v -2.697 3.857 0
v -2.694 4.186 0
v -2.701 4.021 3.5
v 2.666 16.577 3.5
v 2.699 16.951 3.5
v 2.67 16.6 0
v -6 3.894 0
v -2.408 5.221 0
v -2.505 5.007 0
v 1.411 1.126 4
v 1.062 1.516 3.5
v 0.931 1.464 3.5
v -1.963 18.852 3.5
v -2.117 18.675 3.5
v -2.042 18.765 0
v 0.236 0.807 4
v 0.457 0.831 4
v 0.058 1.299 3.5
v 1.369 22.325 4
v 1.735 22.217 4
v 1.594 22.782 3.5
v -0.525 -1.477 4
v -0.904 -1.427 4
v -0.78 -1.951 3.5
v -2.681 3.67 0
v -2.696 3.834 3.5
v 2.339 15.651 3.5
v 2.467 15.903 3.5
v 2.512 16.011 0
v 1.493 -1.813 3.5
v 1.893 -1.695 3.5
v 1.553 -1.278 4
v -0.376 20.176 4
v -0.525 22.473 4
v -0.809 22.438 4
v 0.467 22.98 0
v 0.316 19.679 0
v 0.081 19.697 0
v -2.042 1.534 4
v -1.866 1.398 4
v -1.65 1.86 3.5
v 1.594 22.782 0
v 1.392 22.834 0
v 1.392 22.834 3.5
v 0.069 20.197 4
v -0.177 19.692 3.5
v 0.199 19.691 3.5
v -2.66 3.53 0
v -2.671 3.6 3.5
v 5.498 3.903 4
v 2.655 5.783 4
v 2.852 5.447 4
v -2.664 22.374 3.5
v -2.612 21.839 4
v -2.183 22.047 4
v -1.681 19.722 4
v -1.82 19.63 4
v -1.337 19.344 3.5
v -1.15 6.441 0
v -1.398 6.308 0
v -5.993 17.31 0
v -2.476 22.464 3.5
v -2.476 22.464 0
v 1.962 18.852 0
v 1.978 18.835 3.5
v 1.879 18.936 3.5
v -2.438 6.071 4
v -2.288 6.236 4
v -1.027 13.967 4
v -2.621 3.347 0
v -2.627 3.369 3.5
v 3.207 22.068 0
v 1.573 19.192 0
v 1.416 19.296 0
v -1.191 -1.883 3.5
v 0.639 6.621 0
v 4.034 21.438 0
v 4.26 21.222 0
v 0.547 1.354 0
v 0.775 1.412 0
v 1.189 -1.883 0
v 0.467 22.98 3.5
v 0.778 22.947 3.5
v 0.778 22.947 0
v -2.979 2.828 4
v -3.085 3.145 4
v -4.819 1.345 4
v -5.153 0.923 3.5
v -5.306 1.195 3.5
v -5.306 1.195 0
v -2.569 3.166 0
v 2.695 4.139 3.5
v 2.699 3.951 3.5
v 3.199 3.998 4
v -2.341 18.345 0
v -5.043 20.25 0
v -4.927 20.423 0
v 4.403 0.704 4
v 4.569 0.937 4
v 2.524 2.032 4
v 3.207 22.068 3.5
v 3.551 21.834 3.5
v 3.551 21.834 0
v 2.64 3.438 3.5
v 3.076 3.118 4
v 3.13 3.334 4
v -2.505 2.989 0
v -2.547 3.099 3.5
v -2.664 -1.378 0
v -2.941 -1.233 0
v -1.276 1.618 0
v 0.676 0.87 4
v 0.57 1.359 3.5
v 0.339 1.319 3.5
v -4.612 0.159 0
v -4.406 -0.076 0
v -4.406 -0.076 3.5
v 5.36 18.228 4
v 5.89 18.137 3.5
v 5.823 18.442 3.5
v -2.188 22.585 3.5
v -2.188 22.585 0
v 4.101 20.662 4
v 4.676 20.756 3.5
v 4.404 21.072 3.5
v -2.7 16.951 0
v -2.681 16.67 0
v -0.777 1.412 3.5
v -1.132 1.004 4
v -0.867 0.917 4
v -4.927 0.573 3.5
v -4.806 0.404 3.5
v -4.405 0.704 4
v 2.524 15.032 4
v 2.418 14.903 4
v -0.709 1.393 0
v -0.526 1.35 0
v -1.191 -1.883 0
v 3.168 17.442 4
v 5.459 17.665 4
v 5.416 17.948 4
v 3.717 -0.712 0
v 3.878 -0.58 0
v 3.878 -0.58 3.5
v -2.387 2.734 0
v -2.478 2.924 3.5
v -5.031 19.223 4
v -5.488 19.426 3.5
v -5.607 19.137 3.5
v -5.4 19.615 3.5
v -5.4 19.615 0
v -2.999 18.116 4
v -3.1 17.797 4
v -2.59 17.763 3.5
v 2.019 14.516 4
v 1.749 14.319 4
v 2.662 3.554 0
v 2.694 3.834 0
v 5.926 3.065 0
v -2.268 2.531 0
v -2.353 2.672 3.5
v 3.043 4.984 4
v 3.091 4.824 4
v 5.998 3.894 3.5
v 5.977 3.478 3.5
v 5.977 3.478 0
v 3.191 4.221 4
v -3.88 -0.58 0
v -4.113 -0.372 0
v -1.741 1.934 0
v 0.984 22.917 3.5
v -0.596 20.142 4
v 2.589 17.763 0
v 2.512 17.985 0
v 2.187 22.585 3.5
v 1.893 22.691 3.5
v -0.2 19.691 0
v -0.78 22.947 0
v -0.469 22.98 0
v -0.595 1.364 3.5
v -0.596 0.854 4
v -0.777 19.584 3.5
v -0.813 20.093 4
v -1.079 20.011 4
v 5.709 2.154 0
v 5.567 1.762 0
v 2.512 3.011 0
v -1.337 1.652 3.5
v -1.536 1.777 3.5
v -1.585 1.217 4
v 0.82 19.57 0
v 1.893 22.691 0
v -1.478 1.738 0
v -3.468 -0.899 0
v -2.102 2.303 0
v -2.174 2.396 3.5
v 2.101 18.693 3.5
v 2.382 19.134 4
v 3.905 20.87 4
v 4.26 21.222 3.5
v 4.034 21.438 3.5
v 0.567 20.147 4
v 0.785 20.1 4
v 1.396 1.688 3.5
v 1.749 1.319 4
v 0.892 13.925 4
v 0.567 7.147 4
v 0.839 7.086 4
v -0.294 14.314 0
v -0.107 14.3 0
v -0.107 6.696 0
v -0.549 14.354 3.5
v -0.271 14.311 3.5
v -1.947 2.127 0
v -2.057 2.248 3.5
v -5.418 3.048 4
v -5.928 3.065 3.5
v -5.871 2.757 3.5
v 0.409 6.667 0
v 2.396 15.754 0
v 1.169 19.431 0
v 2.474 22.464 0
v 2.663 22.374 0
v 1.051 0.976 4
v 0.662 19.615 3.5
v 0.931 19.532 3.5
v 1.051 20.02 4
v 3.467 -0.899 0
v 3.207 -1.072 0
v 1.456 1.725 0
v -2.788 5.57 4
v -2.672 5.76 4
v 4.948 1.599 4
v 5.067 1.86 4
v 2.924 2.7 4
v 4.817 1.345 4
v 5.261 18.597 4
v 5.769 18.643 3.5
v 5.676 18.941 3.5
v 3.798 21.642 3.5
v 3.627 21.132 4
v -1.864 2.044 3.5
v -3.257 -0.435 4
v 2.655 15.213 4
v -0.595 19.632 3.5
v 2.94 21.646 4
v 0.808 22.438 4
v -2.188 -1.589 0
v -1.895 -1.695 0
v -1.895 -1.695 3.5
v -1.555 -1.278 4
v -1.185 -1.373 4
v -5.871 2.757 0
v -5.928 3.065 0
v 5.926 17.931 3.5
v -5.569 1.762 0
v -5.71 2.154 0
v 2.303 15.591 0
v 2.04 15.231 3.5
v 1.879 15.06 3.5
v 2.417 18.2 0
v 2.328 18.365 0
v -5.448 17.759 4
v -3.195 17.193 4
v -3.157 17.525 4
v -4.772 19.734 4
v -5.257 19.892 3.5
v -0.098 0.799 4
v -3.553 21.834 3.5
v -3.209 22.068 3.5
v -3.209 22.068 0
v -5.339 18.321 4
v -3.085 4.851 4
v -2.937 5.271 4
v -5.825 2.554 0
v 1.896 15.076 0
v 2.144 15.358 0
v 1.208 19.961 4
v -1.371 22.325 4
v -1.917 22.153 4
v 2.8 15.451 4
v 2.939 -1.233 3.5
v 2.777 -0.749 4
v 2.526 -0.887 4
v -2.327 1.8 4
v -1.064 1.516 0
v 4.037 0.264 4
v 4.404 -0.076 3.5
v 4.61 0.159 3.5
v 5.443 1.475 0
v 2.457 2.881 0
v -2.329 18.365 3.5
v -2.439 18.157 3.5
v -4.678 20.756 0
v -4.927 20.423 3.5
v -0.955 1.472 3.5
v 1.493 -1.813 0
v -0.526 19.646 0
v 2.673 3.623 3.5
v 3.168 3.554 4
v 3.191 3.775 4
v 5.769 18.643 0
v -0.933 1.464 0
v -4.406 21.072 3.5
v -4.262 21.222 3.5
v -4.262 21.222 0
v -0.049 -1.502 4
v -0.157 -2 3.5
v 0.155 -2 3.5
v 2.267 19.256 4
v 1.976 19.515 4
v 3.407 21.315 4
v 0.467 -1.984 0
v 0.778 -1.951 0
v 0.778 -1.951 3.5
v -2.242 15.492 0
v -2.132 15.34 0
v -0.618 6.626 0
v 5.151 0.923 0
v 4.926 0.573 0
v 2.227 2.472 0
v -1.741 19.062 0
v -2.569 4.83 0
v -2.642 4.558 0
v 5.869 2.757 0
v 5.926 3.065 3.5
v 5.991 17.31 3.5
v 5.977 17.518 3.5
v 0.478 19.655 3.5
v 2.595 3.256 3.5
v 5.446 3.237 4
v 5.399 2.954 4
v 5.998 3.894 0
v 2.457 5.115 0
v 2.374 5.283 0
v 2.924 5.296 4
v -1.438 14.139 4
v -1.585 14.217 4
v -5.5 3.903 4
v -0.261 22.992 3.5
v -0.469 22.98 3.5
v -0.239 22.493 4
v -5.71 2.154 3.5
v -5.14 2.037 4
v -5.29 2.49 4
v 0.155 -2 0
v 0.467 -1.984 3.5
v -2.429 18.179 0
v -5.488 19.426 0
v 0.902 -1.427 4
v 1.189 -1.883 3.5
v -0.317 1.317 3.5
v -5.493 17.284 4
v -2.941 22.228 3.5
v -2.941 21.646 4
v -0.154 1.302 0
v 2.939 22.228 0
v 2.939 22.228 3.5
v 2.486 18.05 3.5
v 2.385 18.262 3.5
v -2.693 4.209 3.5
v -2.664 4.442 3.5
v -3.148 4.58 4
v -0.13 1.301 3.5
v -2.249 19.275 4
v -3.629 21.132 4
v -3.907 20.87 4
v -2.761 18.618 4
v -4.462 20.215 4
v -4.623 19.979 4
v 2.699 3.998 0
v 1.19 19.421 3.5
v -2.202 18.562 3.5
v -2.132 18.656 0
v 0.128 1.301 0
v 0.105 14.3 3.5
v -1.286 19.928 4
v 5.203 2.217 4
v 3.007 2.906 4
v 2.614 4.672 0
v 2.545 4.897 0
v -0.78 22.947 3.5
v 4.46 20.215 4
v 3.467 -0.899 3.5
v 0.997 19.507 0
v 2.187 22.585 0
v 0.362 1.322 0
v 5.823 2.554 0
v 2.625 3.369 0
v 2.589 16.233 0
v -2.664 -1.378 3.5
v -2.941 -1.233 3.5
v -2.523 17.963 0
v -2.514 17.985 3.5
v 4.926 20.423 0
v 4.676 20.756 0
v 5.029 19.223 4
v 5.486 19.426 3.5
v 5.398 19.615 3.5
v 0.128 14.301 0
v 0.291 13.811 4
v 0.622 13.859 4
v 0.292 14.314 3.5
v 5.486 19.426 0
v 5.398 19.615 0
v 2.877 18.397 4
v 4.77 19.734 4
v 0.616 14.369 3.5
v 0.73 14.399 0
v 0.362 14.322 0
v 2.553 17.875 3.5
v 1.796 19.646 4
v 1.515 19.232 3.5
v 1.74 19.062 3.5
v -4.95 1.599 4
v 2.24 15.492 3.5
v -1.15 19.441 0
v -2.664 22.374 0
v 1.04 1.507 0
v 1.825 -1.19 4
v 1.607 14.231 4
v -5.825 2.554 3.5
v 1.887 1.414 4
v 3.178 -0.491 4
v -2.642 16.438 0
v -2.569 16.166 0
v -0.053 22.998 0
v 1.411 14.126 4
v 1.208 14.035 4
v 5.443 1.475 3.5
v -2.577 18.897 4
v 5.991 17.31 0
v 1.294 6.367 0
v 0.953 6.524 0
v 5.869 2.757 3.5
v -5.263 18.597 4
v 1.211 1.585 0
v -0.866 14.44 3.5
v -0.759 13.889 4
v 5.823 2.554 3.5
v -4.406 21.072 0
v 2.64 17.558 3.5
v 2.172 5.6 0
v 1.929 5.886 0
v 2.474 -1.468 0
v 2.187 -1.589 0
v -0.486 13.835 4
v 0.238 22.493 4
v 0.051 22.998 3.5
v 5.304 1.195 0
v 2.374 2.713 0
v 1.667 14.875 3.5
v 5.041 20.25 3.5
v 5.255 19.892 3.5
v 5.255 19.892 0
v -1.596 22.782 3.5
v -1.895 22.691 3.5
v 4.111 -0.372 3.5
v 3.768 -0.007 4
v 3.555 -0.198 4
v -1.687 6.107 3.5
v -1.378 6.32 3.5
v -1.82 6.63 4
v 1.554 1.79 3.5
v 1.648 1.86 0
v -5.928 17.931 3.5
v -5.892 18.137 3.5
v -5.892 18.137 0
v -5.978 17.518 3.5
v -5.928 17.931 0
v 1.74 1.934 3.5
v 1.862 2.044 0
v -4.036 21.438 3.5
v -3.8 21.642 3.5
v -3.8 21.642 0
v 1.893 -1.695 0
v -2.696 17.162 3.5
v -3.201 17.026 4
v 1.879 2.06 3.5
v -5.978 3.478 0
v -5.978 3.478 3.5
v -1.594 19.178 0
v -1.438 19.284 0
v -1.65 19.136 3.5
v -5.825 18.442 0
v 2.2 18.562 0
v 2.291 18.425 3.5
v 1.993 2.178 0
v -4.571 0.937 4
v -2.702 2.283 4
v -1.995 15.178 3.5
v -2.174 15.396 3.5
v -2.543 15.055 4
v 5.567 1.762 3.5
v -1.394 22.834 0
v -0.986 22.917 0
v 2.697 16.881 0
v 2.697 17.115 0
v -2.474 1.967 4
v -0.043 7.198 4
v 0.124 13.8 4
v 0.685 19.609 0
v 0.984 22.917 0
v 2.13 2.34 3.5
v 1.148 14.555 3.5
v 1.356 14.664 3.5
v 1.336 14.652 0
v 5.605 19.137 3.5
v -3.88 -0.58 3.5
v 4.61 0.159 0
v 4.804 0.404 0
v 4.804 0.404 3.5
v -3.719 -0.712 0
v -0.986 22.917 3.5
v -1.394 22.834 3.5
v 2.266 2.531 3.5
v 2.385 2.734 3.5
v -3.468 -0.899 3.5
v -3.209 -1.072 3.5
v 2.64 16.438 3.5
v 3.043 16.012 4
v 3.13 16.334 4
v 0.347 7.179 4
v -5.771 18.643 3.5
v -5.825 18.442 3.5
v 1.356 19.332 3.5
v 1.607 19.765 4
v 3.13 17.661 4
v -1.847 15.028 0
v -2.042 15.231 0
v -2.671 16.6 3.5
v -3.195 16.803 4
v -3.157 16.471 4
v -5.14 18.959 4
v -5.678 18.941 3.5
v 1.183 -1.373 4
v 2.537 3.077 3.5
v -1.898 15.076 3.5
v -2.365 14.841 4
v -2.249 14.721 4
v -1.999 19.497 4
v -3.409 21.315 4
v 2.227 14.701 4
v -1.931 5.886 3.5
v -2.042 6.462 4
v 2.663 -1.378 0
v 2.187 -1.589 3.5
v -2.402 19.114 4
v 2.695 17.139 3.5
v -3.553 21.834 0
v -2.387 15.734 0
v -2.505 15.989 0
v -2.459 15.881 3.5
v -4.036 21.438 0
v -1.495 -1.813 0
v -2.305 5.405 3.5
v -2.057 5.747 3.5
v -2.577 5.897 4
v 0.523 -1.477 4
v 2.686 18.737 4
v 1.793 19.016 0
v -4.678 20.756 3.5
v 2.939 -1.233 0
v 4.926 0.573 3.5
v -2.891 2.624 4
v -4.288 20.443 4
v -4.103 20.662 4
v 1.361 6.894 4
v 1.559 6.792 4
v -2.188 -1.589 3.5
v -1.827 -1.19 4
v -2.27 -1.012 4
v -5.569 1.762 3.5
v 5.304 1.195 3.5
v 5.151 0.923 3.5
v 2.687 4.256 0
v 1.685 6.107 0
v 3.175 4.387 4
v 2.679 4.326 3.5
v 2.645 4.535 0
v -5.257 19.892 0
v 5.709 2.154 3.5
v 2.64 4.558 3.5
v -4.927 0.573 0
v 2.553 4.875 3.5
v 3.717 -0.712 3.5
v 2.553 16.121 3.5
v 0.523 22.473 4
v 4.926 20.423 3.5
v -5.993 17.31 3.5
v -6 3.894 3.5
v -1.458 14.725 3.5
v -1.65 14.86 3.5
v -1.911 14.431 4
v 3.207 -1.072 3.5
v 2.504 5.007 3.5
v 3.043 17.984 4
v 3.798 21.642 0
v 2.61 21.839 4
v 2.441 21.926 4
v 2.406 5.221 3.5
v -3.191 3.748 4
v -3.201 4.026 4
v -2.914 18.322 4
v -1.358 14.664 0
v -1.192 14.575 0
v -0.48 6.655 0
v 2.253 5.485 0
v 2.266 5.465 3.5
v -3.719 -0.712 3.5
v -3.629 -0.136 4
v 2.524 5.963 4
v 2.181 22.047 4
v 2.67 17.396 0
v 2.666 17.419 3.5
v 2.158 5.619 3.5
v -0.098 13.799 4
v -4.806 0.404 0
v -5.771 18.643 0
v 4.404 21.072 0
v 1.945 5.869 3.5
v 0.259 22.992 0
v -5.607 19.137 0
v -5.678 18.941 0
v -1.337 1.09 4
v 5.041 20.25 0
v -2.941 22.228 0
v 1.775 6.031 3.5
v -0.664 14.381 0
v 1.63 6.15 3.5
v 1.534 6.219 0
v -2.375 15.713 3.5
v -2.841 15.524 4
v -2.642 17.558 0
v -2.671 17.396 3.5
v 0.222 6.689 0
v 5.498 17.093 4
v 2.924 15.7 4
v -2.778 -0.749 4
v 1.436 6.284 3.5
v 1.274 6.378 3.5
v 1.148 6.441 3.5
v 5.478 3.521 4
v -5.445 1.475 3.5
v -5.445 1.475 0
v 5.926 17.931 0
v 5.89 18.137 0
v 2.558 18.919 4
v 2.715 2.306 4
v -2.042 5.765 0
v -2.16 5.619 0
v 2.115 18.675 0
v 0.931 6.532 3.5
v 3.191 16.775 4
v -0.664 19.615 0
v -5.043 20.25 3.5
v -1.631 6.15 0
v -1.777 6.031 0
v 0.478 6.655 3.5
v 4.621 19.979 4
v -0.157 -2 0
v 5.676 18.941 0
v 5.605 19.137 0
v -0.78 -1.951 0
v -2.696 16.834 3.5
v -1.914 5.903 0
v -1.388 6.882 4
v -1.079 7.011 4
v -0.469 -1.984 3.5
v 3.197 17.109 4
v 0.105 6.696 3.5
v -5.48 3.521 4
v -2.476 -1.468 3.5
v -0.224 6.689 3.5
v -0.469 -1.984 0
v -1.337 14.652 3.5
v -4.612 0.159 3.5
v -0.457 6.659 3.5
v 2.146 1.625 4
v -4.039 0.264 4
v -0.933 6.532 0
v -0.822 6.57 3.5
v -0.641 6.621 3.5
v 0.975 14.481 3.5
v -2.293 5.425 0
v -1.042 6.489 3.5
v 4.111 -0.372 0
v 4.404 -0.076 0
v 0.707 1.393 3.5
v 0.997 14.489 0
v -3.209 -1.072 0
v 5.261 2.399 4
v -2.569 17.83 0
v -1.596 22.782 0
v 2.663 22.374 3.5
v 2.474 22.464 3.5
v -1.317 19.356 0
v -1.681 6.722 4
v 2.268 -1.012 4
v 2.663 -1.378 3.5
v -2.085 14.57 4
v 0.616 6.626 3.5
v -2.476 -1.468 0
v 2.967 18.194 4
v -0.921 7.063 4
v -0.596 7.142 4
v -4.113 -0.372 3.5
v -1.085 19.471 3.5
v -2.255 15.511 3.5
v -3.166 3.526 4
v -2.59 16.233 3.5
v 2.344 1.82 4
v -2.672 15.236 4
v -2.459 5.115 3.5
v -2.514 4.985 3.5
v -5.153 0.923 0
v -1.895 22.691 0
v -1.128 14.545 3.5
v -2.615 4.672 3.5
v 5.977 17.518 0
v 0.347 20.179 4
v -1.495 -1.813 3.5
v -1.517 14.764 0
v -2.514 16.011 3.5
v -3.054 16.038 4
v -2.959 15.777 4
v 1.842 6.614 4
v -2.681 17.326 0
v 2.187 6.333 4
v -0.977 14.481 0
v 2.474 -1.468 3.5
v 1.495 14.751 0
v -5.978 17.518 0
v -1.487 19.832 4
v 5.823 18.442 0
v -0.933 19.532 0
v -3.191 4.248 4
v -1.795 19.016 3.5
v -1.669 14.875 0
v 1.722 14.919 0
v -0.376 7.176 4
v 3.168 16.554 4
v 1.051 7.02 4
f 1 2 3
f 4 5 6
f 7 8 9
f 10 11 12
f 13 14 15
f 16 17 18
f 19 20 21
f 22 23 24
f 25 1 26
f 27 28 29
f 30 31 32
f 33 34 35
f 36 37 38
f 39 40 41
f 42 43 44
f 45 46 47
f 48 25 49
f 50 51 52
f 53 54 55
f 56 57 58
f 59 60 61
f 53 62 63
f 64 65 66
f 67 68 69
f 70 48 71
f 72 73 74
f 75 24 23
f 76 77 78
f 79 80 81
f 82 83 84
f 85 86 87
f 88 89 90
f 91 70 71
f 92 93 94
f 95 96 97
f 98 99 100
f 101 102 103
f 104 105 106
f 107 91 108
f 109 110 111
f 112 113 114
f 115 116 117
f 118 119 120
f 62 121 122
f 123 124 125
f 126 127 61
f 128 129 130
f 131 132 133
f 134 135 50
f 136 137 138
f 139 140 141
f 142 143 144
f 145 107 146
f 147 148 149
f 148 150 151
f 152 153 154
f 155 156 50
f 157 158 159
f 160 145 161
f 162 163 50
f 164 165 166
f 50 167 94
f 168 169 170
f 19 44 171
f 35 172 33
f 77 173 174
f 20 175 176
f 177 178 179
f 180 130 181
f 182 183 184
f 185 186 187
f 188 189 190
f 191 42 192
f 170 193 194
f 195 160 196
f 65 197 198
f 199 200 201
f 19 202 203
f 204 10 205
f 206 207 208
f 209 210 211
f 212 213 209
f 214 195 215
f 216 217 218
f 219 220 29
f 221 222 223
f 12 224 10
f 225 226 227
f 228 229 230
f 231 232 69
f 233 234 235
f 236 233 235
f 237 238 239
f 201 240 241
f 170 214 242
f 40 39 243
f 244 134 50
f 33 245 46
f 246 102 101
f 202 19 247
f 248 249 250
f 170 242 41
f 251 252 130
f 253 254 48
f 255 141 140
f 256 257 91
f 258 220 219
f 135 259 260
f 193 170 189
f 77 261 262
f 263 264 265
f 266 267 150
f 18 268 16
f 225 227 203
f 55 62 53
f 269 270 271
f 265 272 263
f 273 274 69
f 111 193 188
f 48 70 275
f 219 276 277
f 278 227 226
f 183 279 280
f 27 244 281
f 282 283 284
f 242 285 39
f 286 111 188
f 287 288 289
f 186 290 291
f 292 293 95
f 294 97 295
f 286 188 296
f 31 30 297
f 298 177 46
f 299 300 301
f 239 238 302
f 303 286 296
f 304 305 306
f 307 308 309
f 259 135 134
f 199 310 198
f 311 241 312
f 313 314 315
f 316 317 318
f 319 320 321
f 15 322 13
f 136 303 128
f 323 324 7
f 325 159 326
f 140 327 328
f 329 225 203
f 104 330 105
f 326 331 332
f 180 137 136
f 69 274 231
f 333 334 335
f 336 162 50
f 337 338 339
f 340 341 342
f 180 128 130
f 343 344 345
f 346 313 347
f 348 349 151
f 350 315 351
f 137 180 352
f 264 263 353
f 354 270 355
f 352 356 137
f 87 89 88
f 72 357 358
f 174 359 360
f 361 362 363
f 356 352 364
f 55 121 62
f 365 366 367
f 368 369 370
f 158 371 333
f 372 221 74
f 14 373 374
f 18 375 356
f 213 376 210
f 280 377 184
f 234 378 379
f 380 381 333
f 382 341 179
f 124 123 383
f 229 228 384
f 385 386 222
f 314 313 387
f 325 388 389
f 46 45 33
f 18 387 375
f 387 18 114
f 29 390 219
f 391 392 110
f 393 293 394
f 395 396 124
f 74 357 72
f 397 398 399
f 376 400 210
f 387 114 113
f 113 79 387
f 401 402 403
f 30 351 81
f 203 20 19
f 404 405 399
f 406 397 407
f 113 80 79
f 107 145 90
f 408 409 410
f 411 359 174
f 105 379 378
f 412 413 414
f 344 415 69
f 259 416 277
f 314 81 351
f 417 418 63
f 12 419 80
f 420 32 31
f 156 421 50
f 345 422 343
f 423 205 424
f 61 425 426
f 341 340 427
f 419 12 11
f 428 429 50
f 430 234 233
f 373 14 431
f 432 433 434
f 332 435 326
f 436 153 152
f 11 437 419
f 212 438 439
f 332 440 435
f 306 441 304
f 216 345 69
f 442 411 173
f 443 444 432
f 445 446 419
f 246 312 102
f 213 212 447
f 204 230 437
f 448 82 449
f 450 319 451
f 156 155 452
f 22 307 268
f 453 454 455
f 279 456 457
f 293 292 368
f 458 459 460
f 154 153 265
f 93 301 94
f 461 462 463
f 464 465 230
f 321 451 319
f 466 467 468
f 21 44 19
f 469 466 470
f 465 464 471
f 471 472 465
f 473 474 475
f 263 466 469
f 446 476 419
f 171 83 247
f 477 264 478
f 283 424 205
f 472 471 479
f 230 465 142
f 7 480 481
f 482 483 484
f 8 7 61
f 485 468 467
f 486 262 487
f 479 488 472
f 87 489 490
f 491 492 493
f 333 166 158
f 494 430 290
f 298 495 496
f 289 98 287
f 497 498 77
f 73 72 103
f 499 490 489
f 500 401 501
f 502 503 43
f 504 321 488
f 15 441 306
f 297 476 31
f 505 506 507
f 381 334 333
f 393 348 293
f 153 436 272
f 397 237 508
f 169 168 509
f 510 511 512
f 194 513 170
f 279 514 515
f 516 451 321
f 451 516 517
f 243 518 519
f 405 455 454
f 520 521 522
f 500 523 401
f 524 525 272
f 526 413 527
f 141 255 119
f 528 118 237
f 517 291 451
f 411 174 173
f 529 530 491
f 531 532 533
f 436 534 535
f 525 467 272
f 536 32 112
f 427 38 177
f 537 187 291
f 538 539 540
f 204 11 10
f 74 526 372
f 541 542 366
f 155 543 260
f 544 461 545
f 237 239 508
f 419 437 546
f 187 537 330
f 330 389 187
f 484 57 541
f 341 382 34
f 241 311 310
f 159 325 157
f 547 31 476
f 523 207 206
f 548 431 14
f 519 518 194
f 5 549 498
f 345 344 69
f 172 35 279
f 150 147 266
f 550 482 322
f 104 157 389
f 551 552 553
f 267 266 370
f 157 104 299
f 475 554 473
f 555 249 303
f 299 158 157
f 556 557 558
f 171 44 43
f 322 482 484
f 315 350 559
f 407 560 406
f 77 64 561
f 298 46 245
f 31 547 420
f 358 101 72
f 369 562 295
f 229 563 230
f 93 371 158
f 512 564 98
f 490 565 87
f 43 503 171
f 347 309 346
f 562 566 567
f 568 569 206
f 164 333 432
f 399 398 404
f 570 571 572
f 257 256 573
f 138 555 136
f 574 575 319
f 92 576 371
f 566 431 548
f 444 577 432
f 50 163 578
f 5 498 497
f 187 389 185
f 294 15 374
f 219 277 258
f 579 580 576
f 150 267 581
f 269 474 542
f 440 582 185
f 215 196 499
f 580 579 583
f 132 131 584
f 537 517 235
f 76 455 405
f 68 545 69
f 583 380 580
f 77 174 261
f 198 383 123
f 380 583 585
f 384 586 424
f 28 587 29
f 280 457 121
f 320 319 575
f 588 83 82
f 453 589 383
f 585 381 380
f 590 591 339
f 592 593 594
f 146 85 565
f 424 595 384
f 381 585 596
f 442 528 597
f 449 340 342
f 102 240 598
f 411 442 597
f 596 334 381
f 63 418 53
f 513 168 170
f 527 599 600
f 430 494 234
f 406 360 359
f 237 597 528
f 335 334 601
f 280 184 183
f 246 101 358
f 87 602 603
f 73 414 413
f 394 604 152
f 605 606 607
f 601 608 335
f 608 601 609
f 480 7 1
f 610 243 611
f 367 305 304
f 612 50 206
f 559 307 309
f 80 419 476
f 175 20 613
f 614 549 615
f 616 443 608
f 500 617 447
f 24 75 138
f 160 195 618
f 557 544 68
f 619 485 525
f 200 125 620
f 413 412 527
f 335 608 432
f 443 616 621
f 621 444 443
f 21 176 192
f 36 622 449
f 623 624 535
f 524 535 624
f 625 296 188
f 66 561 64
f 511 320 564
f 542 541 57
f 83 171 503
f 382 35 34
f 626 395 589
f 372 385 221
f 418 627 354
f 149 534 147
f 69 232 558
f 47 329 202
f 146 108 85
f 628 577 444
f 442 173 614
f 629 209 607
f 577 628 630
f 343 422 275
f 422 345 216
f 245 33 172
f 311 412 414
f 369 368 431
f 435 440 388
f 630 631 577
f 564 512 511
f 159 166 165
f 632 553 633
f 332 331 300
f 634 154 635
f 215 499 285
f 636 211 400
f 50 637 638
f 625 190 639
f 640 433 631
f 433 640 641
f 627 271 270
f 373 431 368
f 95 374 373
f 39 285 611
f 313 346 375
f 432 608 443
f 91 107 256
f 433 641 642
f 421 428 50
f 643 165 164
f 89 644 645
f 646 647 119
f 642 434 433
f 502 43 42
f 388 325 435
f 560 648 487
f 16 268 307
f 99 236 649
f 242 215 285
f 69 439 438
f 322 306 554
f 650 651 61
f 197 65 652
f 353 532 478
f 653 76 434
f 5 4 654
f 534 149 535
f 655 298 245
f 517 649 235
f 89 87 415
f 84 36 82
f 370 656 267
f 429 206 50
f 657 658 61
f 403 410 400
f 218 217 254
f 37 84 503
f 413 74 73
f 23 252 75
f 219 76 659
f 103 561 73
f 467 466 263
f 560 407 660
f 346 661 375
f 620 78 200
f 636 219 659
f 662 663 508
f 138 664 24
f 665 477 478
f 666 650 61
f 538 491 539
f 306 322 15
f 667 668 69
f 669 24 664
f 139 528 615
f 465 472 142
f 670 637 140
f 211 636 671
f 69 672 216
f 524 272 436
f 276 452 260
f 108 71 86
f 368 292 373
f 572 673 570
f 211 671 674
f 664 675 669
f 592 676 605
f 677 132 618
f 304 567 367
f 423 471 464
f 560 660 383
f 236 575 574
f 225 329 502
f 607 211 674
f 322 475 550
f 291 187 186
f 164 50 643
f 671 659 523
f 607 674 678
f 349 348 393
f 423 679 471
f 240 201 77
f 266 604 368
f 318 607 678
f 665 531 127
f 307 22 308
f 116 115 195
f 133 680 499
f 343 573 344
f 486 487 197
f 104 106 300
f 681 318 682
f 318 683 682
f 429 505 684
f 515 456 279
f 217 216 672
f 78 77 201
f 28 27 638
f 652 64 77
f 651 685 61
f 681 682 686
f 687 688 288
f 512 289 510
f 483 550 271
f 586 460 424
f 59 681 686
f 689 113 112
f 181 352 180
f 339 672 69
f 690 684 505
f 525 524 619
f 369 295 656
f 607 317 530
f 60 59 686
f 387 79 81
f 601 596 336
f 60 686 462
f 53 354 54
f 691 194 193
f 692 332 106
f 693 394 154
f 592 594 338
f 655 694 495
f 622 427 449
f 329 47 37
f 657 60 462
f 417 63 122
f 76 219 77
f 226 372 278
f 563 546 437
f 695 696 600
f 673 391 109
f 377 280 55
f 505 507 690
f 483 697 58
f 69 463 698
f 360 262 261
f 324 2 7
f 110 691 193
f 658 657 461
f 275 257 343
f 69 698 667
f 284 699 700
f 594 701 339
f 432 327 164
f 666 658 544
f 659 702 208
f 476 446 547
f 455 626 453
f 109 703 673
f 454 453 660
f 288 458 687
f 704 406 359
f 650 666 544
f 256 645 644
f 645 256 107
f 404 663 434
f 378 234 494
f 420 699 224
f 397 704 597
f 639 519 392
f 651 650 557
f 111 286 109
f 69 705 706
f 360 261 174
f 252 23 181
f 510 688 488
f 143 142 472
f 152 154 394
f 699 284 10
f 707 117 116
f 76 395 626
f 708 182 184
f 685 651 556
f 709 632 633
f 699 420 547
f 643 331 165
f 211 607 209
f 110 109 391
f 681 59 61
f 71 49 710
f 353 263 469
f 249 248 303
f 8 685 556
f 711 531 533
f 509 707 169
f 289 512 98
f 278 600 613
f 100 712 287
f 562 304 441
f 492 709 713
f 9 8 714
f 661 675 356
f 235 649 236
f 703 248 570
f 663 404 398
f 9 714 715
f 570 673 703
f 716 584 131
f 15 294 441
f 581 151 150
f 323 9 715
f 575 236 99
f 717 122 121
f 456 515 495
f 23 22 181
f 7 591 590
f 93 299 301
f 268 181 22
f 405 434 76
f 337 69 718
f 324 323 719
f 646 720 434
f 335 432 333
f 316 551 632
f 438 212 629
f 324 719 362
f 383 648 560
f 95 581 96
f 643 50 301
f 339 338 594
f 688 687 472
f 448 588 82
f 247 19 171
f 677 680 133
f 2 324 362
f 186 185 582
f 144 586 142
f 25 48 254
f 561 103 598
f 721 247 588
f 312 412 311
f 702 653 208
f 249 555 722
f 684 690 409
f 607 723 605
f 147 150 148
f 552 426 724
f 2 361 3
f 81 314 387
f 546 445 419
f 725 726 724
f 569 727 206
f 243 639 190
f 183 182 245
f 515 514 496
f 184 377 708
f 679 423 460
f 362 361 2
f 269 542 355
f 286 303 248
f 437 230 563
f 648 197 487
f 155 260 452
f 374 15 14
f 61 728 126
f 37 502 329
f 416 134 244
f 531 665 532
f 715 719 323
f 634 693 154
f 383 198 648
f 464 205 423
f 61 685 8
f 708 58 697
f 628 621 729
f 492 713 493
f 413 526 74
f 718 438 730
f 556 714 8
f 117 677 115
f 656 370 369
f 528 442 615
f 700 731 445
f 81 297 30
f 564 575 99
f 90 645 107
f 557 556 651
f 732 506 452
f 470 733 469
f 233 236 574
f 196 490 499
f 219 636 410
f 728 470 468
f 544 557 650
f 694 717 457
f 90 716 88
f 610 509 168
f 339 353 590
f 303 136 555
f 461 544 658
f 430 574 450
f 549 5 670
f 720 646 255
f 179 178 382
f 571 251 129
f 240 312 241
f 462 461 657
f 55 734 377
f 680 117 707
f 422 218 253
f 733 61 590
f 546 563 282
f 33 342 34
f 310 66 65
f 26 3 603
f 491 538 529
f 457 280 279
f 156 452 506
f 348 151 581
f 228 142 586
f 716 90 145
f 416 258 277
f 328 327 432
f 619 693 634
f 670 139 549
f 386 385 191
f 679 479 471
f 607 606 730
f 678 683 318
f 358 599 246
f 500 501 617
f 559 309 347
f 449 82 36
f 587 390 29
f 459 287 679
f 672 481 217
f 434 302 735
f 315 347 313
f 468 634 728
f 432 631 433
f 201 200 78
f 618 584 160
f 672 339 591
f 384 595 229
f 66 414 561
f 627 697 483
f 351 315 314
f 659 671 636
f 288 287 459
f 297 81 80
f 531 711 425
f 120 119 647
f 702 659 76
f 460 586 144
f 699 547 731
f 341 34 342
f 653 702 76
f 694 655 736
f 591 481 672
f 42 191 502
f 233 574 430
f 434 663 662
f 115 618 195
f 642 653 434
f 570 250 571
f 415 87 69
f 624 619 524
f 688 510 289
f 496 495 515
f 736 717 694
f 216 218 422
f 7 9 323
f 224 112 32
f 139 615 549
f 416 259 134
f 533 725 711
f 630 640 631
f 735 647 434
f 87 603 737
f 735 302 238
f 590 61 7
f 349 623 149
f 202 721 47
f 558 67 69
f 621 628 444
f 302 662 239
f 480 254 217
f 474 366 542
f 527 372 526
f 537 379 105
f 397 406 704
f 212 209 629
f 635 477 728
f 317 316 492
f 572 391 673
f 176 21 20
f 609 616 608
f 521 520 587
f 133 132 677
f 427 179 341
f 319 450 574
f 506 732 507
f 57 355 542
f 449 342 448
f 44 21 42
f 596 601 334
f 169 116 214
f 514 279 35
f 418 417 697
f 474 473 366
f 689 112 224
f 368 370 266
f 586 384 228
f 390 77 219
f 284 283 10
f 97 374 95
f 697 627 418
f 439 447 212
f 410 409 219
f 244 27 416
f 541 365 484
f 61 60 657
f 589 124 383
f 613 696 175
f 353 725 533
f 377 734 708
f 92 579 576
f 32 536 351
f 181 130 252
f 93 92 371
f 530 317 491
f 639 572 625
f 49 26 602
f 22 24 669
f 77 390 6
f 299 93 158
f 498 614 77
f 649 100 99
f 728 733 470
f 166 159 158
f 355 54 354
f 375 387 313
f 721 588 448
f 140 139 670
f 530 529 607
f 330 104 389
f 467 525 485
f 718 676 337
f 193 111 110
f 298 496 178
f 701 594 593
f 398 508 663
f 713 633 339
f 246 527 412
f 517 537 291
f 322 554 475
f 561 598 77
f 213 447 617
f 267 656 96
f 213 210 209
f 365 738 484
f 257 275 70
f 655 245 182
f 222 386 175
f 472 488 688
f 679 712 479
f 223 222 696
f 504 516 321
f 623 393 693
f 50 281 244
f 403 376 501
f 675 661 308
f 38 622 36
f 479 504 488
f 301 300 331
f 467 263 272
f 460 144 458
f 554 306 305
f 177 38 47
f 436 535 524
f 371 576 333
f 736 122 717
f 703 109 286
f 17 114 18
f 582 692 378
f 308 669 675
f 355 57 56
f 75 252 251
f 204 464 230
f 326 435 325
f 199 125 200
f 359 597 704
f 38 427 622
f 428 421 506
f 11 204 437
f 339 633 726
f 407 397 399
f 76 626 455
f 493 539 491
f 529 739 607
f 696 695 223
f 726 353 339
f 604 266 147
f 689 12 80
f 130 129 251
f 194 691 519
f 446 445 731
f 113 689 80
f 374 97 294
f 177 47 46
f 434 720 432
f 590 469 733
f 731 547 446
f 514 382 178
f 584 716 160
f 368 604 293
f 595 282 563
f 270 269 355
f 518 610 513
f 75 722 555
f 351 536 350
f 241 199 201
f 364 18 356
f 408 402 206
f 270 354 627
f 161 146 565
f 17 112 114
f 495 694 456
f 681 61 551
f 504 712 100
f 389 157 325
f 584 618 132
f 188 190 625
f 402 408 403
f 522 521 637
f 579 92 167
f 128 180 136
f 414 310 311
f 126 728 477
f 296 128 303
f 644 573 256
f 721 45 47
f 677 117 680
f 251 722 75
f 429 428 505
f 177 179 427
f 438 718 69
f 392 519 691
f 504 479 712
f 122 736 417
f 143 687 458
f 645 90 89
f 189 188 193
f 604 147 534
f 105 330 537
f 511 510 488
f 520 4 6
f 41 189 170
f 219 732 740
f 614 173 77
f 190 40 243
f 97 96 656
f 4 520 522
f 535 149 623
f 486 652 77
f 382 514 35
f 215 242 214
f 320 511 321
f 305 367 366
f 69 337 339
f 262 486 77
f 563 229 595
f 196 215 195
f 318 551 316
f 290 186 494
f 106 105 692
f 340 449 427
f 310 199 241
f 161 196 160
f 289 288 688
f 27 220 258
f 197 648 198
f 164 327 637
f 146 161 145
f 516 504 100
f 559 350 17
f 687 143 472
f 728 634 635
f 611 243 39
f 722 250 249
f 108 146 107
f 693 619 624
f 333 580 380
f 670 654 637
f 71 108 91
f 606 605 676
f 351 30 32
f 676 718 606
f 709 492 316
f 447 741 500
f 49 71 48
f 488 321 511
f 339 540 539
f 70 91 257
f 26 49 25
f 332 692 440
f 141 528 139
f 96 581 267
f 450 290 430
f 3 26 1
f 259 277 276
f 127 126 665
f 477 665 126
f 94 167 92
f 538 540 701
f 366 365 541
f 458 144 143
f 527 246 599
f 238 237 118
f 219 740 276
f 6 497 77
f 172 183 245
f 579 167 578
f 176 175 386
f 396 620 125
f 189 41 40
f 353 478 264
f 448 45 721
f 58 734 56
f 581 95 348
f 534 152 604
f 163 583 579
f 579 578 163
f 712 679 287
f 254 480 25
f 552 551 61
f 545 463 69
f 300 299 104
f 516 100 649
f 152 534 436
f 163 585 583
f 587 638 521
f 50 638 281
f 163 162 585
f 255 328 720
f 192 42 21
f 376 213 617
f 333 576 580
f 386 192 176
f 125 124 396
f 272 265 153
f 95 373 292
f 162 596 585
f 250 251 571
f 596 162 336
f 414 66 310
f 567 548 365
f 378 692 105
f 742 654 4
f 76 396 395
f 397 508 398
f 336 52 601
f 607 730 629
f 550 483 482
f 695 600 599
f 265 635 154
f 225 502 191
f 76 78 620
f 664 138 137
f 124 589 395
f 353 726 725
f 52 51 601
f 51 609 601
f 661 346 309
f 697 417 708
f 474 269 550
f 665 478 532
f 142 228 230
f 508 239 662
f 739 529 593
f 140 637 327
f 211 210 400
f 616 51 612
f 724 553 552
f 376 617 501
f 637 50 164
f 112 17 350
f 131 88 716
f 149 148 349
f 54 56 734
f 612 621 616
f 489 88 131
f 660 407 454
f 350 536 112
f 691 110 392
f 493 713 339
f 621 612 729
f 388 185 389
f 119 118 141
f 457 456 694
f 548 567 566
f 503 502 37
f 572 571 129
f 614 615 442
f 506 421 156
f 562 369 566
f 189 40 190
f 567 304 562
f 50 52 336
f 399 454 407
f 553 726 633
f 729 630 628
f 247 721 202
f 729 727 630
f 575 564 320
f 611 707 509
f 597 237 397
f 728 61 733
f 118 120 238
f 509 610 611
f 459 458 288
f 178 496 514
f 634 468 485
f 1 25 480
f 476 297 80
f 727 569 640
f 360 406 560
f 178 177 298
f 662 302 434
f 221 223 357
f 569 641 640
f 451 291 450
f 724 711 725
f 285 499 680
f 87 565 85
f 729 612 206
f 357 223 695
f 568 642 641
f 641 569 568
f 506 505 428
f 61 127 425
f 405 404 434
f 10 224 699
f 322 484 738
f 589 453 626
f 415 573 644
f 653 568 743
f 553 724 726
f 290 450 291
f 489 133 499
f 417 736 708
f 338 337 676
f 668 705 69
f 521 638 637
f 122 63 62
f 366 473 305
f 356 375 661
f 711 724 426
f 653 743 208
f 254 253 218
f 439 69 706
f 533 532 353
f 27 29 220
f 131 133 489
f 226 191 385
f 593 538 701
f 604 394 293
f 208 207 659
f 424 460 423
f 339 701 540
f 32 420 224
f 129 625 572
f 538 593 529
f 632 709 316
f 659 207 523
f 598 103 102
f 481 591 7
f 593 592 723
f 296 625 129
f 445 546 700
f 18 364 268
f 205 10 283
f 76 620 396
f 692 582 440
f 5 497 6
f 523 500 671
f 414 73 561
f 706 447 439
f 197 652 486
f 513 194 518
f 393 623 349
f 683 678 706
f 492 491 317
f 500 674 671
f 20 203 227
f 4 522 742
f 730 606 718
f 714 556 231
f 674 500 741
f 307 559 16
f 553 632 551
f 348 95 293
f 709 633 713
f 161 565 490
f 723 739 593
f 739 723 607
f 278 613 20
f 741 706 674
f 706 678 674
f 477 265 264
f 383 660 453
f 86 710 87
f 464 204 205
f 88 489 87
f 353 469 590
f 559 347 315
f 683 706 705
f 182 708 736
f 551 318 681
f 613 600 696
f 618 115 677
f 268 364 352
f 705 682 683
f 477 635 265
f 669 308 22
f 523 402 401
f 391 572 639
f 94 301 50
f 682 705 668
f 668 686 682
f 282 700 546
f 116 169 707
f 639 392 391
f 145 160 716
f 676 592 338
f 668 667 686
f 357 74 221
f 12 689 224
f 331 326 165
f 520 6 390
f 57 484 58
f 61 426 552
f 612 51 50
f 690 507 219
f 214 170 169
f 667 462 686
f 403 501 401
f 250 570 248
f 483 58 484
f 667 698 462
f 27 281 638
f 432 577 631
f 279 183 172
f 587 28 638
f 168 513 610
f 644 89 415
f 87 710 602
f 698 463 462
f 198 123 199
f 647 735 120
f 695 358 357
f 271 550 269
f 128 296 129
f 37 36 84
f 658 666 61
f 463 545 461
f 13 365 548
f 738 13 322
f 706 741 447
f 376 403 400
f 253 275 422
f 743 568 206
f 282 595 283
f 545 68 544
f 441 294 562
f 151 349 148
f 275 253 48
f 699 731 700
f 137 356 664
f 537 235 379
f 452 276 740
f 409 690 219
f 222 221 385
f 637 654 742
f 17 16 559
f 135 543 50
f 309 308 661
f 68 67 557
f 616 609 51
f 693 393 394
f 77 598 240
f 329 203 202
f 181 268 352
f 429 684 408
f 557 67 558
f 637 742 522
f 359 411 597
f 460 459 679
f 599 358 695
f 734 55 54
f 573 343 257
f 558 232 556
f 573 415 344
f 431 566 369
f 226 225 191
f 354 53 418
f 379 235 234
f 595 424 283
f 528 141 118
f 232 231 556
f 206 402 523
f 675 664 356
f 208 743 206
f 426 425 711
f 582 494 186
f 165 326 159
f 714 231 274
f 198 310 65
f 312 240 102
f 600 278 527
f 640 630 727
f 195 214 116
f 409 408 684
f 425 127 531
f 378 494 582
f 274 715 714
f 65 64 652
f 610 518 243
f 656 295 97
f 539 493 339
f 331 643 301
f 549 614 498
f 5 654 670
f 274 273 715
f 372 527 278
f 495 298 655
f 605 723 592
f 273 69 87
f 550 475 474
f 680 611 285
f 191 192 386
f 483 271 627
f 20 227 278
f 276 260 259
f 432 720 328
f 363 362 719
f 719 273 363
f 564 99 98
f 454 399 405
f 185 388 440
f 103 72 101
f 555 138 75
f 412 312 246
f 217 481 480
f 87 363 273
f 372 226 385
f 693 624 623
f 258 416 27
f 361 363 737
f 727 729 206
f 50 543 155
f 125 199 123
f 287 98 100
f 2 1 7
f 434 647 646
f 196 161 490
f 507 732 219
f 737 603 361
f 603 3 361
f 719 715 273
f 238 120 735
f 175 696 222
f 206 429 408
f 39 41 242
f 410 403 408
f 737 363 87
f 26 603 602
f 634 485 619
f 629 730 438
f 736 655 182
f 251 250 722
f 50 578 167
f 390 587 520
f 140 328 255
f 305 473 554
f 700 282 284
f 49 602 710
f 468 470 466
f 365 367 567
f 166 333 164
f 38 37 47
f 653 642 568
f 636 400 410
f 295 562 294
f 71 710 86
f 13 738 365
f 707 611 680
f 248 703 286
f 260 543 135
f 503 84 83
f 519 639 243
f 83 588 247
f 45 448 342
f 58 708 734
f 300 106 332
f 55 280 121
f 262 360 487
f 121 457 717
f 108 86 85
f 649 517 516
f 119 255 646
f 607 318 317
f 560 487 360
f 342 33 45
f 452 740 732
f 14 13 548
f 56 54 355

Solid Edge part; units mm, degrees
sketch "Sketch1" plane through (0, 0, 0) normal (0, 0, 1) x (1, 0, 0)
  circle A0 centre (0, 4) radius 2.7
  line L0 (-6, 17) -> (-6, 4)
  line L1 (6, 17) -> (6, 4)
  arc A1 (6, 17) -> (-6, 17) centre (0, 17) ccw
  arc A2 (-6, 4) -> (6, 4) centre (0, 4) ccw
  circle A3 centre (0, 17) radius 2.7
extrude "Protrusion1" add sketch "Sketch1" along normal blind 4
chamfer "Chamfer_1" [suppressed]
chamfer "Chamfer_2" distance 0.5 angle 45 6 edges at (0, -2, 4) (6, 10.5, 4) (0, 23, 4) (-6, 10.5, 4) (-2.7, 4, 4) (-2.7, 17, 4)
properties material "ABS Plastic, medium impact"
